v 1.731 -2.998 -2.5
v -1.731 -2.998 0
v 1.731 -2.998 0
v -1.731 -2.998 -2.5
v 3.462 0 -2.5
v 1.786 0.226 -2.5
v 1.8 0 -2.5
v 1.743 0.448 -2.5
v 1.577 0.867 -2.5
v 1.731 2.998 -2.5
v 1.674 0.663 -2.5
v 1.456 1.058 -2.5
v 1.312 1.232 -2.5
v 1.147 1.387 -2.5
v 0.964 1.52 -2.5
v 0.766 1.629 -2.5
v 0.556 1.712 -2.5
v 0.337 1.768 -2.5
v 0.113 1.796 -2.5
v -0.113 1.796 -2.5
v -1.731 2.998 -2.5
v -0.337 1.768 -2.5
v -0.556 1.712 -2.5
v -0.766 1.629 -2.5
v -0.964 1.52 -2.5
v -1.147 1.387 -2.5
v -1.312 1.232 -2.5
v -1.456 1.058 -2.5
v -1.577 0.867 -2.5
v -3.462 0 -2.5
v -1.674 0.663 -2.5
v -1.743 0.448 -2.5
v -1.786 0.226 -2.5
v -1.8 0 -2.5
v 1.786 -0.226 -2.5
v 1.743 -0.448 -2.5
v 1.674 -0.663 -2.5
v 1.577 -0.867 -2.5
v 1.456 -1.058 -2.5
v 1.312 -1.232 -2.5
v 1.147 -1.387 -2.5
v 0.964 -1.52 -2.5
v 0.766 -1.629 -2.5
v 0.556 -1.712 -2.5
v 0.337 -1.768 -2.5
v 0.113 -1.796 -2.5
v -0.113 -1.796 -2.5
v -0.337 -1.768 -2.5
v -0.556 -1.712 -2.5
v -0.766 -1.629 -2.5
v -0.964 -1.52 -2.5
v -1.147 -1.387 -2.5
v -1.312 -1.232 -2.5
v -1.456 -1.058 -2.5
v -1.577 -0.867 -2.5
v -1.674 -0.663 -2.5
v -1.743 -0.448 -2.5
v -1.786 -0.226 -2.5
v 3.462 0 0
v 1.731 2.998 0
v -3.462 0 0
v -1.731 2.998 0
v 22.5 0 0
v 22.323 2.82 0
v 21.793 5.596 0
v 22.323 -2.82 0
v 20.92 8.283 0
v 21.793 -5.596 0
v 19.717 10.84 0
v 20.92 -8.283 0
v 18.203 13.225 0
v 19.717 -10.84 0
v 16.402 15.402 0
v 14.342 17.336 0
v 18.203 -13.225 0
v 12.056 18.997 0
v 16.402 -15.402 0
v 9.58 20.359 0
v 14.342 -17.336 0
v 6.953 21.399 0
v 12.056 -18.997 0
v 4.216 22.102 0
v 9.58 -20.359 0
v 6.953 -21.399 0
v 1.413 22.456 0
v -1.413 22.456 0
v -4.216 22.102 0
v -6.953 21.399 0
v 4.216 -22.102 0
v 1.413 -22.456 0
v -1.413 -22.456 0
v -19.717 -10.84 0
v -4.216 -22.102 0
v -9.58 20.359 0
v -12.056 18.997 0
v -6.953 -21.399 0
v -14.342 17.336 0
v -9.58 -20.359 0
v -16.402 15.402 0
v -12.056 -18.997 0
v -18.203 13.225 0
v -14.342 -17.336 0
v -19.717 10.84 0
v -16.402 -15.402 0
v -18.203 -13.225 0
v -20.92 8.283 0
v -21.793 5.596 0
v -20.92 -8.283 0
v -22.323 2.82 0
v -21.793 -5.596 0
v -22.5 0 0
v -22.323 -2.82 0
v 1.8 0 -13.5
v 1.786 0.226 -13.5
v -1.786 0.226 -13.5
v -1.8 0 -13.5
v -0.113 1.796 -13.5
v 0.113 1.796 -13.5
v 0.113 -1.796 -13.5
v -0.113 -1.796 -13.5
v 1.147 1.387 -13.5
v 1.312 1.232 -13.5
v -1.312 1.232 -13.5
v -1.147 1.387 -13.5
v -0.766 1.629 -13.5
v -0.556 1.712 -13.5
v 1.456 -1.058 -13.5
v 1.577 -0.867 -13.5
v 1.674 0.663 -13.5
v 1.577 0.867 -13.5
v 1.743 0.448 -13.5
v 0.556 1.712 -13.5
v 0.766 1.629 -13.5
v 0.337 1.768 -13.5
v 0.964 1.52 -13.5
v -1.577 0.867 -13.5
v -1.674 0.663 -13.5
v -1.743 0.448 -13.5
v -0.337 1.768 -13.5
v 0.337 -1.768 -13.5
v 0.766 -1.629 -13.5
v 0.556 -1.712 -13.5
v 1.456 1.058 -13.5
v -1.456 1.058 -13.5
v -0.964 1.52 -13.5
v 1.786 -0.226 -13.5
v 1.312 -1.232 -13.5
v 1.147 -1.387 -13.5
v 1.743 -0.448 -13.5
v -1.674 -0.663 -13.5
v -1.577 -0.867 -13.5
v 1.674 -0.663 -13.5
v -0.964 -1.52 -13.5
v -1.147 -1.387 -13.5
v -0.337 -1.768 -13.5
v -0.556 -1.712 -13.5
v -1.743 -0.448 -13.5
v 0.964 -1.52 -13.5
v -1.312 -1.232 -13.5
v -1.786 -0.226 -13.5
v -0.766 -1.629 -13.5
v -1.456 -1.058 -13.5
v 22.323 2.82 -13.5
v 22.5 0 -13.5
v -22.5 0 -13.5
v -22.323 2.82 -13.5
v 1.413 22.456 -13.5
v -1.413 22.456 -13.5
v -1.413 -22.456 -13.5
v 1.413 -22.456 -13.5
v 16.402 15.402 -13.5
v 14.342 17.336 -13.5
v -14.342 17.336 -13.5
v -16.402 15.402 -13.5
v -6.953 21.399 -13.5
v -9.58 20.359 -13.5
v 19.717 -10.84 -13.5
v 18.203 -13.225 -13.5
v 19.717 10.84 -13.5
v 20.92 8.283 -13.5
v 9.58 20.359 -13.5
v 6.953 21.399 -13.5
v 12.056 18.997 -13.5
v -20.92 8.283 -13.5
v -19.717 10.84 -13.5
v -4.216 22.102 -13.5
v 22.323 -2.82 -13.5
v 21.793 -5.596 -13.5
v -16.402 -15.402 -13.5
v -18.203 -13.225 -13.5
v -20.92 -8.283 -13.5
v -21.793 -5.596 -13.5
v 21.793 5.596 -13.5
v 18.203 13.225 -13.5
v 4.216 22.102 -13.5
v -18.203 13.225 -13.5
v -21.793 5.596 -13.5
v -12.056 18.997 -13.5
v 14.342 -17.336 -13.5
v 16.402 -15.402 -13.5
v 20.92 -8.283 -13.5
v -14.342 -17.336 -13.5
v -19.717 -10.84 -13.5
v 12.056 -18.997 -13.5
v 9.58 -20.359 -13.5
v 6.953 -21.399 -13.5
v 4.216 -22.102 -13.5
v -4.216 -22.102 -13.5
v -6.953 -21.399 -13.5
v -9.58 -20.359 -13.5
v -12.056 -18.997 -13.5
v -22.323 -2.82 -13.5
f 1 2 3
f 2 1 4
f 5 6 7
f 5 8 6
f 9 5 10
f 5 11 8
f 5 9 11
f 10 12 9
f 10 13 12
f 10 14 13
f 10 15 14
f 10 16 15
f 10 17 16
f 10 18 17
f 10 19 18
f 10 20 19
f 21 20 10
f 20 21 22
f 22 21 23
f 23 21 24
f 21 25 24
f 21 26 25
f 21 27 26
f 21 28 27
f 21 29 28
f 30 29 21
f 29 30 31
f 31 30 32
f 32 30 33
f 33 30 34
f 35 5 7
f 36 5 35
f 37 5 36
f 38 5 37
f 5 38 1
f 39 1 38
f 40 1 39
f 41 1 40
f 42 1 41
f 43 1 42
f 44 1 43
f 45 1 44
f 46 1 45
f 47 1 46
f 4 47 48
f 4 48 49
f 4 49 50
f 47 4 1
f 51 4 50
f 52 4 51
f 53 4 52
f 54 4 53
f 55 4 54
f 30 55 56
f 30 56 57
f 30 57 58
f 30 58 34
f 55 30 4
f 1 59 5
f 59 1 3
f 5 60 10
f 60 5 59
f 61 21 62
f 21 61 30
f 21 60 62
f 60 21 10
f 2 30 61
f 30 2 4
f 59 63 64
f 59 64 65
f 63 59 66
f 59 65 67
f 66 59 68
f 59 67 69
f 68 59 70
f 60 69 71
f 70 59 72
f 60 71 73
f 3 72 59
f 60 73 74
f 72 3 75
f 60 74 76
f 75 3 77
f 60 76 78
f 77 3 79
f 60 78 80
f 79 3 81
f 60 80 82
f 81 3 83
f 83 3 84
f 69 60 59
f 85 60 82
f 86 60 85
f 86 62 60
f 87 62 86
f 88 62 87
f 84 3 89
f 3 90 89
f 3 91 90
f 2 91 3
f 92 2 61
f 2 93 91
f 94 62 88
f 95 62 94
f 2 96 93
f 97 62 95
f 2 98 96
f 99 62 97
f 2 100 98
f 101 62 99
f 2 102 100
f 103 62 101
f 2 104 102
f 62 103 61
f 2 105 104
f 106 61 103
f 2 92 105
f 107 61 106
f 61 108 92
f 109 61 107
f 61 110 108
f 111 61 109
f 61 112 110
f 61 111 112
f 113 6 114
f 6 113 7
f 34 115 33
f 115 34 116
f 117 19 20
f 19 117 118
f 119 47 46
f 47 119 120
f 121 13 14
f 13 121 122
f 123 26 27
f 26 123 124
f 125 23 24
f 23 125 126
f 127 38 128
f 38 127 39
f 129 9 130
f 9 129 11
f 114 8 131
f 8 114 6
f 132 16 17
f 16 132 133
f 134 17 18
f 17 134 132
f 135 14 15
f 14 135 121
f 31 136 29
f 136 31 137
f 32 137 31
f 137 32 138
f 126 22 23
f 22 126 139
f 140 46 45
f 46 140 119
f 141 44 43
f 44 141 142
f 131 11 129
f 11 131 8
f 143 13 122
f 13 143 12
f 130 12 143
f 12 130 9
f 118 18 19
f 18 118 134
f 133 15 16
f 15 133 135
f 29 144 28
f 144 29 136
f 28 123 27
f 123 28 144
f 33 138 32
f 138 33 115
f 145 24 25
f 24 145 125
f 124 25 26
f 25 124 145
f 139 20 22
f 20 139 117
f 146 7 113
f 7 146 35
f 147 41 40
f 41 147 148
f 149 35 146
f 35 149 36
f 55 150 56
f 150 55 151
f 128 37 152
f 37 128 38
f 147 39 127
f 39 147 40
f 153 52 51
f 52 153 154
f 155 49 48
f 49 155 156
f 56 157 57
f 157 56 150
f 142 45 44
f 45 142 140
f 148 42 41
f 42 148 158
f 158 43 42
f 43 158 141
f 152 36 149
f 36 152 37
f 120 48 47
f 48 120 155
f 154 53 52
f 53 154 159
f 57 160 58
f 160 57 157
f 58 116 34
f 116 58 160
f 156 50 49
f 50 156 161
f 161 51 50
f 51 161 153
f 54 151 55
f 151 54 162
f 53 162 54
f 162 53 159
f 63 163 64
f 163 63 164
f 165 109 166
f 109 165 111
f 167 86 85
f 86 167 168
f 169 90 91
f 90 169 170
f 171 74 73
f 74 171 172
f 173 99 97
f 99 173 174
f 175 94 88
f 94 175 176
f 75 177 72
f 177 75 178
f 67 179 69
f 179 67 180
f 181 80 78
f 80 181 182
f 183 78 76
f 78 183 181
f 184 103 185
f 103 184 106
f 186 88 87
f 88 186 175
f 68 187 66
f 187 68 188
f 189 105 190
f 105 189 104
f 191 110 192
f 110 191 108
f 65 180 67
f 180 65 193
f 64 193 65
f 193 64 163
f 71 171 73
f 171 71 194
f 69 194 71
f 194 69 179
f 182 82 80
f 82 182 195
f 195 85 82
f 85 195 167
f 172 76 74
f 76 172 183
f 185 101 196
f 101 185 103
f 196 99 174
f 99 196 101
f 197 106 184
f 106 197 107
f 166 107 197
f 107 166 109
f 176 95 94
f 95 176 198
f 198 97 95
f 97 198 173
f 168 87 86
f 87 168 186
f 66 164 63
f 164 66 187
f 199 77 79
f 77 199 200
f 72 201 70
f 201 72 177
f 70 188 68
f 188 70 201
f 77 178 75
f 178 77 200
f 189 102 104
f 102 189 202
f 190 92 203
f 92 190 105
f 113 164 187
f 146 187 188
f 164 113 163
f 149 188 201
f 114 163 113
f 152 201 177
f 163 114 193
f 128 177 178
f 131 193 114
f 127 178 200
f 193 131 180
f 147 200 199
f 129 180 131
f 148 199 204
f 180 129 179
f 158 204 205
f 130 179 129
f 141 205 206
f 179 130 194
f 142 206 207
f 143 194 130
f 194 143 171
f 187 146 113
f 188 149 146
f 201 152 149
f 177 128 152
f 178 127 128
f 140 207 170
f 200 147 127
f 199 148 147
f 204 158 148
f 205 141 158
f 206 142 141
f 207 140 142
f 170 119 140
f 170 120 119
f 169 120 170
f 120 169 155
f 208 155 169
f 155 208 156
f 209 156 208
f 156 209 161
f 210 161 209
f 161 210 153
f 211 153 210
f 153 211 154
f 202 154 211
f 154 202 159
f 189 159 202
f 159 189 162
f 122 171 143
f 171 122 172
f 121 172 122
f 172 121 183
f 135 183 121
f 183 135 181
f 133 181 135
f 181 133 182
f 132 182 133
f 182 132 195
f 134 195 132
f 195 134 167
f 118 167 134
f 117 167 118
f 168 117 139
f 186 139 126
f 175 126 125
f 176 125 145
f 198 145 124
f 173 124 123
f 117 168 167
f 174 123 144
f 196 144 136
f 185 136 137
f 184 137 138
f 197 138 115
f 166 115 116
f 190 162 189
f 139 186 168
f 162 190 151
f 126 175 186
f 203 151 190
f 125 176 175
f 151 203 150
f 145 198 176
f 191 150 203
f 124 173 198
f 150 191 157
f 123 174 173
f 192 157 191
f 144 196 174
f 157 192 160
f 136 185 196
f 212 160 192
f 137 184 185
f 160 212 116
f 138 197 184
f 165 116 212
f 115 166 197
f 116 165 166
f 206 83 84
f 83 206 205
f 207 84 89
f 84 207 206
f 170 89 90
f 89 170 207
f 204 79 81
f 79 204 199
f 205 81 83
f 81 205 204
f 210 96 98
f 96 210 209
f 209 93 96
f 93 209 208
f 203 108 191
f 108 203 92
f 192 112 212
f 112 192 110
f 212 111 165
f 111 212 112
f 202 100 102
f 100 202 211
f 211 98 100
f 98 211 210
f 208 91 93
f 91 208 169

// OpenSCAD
$fn = 50;


difference() {
	union() {
		translate(v = [0, 0, -13.5000000000]) {
			cylinder(h = 13.5000000000, r = 22.5000000000);
		}
	}
	union() {
		translate(v = [0, 0, 0]) {
			rotate(a = [0, 0, 0]) {
				difference() {
					union() {
						translate(v = [0, 0, -2.5000000000]) {
							linear_extrude(height = 2.5000000000) {
								polygon(points = [[3.4620000000, 0.0000000000], [1.7310000000, 2.9981799479], [-1.7310000000, 2.9981799479], [-3.4620000000, 0.0000000000], [-1.7310000000, -2.9981799479], [1.7310000000, -2.9981799479]]);
							}
						}
					}
					union();
				}
			}
		}
		#translate(v = [0, 0, -100.0000000000]) {
			cylinder(h = 200, r = 1.8000000000);
		}
	}
}
